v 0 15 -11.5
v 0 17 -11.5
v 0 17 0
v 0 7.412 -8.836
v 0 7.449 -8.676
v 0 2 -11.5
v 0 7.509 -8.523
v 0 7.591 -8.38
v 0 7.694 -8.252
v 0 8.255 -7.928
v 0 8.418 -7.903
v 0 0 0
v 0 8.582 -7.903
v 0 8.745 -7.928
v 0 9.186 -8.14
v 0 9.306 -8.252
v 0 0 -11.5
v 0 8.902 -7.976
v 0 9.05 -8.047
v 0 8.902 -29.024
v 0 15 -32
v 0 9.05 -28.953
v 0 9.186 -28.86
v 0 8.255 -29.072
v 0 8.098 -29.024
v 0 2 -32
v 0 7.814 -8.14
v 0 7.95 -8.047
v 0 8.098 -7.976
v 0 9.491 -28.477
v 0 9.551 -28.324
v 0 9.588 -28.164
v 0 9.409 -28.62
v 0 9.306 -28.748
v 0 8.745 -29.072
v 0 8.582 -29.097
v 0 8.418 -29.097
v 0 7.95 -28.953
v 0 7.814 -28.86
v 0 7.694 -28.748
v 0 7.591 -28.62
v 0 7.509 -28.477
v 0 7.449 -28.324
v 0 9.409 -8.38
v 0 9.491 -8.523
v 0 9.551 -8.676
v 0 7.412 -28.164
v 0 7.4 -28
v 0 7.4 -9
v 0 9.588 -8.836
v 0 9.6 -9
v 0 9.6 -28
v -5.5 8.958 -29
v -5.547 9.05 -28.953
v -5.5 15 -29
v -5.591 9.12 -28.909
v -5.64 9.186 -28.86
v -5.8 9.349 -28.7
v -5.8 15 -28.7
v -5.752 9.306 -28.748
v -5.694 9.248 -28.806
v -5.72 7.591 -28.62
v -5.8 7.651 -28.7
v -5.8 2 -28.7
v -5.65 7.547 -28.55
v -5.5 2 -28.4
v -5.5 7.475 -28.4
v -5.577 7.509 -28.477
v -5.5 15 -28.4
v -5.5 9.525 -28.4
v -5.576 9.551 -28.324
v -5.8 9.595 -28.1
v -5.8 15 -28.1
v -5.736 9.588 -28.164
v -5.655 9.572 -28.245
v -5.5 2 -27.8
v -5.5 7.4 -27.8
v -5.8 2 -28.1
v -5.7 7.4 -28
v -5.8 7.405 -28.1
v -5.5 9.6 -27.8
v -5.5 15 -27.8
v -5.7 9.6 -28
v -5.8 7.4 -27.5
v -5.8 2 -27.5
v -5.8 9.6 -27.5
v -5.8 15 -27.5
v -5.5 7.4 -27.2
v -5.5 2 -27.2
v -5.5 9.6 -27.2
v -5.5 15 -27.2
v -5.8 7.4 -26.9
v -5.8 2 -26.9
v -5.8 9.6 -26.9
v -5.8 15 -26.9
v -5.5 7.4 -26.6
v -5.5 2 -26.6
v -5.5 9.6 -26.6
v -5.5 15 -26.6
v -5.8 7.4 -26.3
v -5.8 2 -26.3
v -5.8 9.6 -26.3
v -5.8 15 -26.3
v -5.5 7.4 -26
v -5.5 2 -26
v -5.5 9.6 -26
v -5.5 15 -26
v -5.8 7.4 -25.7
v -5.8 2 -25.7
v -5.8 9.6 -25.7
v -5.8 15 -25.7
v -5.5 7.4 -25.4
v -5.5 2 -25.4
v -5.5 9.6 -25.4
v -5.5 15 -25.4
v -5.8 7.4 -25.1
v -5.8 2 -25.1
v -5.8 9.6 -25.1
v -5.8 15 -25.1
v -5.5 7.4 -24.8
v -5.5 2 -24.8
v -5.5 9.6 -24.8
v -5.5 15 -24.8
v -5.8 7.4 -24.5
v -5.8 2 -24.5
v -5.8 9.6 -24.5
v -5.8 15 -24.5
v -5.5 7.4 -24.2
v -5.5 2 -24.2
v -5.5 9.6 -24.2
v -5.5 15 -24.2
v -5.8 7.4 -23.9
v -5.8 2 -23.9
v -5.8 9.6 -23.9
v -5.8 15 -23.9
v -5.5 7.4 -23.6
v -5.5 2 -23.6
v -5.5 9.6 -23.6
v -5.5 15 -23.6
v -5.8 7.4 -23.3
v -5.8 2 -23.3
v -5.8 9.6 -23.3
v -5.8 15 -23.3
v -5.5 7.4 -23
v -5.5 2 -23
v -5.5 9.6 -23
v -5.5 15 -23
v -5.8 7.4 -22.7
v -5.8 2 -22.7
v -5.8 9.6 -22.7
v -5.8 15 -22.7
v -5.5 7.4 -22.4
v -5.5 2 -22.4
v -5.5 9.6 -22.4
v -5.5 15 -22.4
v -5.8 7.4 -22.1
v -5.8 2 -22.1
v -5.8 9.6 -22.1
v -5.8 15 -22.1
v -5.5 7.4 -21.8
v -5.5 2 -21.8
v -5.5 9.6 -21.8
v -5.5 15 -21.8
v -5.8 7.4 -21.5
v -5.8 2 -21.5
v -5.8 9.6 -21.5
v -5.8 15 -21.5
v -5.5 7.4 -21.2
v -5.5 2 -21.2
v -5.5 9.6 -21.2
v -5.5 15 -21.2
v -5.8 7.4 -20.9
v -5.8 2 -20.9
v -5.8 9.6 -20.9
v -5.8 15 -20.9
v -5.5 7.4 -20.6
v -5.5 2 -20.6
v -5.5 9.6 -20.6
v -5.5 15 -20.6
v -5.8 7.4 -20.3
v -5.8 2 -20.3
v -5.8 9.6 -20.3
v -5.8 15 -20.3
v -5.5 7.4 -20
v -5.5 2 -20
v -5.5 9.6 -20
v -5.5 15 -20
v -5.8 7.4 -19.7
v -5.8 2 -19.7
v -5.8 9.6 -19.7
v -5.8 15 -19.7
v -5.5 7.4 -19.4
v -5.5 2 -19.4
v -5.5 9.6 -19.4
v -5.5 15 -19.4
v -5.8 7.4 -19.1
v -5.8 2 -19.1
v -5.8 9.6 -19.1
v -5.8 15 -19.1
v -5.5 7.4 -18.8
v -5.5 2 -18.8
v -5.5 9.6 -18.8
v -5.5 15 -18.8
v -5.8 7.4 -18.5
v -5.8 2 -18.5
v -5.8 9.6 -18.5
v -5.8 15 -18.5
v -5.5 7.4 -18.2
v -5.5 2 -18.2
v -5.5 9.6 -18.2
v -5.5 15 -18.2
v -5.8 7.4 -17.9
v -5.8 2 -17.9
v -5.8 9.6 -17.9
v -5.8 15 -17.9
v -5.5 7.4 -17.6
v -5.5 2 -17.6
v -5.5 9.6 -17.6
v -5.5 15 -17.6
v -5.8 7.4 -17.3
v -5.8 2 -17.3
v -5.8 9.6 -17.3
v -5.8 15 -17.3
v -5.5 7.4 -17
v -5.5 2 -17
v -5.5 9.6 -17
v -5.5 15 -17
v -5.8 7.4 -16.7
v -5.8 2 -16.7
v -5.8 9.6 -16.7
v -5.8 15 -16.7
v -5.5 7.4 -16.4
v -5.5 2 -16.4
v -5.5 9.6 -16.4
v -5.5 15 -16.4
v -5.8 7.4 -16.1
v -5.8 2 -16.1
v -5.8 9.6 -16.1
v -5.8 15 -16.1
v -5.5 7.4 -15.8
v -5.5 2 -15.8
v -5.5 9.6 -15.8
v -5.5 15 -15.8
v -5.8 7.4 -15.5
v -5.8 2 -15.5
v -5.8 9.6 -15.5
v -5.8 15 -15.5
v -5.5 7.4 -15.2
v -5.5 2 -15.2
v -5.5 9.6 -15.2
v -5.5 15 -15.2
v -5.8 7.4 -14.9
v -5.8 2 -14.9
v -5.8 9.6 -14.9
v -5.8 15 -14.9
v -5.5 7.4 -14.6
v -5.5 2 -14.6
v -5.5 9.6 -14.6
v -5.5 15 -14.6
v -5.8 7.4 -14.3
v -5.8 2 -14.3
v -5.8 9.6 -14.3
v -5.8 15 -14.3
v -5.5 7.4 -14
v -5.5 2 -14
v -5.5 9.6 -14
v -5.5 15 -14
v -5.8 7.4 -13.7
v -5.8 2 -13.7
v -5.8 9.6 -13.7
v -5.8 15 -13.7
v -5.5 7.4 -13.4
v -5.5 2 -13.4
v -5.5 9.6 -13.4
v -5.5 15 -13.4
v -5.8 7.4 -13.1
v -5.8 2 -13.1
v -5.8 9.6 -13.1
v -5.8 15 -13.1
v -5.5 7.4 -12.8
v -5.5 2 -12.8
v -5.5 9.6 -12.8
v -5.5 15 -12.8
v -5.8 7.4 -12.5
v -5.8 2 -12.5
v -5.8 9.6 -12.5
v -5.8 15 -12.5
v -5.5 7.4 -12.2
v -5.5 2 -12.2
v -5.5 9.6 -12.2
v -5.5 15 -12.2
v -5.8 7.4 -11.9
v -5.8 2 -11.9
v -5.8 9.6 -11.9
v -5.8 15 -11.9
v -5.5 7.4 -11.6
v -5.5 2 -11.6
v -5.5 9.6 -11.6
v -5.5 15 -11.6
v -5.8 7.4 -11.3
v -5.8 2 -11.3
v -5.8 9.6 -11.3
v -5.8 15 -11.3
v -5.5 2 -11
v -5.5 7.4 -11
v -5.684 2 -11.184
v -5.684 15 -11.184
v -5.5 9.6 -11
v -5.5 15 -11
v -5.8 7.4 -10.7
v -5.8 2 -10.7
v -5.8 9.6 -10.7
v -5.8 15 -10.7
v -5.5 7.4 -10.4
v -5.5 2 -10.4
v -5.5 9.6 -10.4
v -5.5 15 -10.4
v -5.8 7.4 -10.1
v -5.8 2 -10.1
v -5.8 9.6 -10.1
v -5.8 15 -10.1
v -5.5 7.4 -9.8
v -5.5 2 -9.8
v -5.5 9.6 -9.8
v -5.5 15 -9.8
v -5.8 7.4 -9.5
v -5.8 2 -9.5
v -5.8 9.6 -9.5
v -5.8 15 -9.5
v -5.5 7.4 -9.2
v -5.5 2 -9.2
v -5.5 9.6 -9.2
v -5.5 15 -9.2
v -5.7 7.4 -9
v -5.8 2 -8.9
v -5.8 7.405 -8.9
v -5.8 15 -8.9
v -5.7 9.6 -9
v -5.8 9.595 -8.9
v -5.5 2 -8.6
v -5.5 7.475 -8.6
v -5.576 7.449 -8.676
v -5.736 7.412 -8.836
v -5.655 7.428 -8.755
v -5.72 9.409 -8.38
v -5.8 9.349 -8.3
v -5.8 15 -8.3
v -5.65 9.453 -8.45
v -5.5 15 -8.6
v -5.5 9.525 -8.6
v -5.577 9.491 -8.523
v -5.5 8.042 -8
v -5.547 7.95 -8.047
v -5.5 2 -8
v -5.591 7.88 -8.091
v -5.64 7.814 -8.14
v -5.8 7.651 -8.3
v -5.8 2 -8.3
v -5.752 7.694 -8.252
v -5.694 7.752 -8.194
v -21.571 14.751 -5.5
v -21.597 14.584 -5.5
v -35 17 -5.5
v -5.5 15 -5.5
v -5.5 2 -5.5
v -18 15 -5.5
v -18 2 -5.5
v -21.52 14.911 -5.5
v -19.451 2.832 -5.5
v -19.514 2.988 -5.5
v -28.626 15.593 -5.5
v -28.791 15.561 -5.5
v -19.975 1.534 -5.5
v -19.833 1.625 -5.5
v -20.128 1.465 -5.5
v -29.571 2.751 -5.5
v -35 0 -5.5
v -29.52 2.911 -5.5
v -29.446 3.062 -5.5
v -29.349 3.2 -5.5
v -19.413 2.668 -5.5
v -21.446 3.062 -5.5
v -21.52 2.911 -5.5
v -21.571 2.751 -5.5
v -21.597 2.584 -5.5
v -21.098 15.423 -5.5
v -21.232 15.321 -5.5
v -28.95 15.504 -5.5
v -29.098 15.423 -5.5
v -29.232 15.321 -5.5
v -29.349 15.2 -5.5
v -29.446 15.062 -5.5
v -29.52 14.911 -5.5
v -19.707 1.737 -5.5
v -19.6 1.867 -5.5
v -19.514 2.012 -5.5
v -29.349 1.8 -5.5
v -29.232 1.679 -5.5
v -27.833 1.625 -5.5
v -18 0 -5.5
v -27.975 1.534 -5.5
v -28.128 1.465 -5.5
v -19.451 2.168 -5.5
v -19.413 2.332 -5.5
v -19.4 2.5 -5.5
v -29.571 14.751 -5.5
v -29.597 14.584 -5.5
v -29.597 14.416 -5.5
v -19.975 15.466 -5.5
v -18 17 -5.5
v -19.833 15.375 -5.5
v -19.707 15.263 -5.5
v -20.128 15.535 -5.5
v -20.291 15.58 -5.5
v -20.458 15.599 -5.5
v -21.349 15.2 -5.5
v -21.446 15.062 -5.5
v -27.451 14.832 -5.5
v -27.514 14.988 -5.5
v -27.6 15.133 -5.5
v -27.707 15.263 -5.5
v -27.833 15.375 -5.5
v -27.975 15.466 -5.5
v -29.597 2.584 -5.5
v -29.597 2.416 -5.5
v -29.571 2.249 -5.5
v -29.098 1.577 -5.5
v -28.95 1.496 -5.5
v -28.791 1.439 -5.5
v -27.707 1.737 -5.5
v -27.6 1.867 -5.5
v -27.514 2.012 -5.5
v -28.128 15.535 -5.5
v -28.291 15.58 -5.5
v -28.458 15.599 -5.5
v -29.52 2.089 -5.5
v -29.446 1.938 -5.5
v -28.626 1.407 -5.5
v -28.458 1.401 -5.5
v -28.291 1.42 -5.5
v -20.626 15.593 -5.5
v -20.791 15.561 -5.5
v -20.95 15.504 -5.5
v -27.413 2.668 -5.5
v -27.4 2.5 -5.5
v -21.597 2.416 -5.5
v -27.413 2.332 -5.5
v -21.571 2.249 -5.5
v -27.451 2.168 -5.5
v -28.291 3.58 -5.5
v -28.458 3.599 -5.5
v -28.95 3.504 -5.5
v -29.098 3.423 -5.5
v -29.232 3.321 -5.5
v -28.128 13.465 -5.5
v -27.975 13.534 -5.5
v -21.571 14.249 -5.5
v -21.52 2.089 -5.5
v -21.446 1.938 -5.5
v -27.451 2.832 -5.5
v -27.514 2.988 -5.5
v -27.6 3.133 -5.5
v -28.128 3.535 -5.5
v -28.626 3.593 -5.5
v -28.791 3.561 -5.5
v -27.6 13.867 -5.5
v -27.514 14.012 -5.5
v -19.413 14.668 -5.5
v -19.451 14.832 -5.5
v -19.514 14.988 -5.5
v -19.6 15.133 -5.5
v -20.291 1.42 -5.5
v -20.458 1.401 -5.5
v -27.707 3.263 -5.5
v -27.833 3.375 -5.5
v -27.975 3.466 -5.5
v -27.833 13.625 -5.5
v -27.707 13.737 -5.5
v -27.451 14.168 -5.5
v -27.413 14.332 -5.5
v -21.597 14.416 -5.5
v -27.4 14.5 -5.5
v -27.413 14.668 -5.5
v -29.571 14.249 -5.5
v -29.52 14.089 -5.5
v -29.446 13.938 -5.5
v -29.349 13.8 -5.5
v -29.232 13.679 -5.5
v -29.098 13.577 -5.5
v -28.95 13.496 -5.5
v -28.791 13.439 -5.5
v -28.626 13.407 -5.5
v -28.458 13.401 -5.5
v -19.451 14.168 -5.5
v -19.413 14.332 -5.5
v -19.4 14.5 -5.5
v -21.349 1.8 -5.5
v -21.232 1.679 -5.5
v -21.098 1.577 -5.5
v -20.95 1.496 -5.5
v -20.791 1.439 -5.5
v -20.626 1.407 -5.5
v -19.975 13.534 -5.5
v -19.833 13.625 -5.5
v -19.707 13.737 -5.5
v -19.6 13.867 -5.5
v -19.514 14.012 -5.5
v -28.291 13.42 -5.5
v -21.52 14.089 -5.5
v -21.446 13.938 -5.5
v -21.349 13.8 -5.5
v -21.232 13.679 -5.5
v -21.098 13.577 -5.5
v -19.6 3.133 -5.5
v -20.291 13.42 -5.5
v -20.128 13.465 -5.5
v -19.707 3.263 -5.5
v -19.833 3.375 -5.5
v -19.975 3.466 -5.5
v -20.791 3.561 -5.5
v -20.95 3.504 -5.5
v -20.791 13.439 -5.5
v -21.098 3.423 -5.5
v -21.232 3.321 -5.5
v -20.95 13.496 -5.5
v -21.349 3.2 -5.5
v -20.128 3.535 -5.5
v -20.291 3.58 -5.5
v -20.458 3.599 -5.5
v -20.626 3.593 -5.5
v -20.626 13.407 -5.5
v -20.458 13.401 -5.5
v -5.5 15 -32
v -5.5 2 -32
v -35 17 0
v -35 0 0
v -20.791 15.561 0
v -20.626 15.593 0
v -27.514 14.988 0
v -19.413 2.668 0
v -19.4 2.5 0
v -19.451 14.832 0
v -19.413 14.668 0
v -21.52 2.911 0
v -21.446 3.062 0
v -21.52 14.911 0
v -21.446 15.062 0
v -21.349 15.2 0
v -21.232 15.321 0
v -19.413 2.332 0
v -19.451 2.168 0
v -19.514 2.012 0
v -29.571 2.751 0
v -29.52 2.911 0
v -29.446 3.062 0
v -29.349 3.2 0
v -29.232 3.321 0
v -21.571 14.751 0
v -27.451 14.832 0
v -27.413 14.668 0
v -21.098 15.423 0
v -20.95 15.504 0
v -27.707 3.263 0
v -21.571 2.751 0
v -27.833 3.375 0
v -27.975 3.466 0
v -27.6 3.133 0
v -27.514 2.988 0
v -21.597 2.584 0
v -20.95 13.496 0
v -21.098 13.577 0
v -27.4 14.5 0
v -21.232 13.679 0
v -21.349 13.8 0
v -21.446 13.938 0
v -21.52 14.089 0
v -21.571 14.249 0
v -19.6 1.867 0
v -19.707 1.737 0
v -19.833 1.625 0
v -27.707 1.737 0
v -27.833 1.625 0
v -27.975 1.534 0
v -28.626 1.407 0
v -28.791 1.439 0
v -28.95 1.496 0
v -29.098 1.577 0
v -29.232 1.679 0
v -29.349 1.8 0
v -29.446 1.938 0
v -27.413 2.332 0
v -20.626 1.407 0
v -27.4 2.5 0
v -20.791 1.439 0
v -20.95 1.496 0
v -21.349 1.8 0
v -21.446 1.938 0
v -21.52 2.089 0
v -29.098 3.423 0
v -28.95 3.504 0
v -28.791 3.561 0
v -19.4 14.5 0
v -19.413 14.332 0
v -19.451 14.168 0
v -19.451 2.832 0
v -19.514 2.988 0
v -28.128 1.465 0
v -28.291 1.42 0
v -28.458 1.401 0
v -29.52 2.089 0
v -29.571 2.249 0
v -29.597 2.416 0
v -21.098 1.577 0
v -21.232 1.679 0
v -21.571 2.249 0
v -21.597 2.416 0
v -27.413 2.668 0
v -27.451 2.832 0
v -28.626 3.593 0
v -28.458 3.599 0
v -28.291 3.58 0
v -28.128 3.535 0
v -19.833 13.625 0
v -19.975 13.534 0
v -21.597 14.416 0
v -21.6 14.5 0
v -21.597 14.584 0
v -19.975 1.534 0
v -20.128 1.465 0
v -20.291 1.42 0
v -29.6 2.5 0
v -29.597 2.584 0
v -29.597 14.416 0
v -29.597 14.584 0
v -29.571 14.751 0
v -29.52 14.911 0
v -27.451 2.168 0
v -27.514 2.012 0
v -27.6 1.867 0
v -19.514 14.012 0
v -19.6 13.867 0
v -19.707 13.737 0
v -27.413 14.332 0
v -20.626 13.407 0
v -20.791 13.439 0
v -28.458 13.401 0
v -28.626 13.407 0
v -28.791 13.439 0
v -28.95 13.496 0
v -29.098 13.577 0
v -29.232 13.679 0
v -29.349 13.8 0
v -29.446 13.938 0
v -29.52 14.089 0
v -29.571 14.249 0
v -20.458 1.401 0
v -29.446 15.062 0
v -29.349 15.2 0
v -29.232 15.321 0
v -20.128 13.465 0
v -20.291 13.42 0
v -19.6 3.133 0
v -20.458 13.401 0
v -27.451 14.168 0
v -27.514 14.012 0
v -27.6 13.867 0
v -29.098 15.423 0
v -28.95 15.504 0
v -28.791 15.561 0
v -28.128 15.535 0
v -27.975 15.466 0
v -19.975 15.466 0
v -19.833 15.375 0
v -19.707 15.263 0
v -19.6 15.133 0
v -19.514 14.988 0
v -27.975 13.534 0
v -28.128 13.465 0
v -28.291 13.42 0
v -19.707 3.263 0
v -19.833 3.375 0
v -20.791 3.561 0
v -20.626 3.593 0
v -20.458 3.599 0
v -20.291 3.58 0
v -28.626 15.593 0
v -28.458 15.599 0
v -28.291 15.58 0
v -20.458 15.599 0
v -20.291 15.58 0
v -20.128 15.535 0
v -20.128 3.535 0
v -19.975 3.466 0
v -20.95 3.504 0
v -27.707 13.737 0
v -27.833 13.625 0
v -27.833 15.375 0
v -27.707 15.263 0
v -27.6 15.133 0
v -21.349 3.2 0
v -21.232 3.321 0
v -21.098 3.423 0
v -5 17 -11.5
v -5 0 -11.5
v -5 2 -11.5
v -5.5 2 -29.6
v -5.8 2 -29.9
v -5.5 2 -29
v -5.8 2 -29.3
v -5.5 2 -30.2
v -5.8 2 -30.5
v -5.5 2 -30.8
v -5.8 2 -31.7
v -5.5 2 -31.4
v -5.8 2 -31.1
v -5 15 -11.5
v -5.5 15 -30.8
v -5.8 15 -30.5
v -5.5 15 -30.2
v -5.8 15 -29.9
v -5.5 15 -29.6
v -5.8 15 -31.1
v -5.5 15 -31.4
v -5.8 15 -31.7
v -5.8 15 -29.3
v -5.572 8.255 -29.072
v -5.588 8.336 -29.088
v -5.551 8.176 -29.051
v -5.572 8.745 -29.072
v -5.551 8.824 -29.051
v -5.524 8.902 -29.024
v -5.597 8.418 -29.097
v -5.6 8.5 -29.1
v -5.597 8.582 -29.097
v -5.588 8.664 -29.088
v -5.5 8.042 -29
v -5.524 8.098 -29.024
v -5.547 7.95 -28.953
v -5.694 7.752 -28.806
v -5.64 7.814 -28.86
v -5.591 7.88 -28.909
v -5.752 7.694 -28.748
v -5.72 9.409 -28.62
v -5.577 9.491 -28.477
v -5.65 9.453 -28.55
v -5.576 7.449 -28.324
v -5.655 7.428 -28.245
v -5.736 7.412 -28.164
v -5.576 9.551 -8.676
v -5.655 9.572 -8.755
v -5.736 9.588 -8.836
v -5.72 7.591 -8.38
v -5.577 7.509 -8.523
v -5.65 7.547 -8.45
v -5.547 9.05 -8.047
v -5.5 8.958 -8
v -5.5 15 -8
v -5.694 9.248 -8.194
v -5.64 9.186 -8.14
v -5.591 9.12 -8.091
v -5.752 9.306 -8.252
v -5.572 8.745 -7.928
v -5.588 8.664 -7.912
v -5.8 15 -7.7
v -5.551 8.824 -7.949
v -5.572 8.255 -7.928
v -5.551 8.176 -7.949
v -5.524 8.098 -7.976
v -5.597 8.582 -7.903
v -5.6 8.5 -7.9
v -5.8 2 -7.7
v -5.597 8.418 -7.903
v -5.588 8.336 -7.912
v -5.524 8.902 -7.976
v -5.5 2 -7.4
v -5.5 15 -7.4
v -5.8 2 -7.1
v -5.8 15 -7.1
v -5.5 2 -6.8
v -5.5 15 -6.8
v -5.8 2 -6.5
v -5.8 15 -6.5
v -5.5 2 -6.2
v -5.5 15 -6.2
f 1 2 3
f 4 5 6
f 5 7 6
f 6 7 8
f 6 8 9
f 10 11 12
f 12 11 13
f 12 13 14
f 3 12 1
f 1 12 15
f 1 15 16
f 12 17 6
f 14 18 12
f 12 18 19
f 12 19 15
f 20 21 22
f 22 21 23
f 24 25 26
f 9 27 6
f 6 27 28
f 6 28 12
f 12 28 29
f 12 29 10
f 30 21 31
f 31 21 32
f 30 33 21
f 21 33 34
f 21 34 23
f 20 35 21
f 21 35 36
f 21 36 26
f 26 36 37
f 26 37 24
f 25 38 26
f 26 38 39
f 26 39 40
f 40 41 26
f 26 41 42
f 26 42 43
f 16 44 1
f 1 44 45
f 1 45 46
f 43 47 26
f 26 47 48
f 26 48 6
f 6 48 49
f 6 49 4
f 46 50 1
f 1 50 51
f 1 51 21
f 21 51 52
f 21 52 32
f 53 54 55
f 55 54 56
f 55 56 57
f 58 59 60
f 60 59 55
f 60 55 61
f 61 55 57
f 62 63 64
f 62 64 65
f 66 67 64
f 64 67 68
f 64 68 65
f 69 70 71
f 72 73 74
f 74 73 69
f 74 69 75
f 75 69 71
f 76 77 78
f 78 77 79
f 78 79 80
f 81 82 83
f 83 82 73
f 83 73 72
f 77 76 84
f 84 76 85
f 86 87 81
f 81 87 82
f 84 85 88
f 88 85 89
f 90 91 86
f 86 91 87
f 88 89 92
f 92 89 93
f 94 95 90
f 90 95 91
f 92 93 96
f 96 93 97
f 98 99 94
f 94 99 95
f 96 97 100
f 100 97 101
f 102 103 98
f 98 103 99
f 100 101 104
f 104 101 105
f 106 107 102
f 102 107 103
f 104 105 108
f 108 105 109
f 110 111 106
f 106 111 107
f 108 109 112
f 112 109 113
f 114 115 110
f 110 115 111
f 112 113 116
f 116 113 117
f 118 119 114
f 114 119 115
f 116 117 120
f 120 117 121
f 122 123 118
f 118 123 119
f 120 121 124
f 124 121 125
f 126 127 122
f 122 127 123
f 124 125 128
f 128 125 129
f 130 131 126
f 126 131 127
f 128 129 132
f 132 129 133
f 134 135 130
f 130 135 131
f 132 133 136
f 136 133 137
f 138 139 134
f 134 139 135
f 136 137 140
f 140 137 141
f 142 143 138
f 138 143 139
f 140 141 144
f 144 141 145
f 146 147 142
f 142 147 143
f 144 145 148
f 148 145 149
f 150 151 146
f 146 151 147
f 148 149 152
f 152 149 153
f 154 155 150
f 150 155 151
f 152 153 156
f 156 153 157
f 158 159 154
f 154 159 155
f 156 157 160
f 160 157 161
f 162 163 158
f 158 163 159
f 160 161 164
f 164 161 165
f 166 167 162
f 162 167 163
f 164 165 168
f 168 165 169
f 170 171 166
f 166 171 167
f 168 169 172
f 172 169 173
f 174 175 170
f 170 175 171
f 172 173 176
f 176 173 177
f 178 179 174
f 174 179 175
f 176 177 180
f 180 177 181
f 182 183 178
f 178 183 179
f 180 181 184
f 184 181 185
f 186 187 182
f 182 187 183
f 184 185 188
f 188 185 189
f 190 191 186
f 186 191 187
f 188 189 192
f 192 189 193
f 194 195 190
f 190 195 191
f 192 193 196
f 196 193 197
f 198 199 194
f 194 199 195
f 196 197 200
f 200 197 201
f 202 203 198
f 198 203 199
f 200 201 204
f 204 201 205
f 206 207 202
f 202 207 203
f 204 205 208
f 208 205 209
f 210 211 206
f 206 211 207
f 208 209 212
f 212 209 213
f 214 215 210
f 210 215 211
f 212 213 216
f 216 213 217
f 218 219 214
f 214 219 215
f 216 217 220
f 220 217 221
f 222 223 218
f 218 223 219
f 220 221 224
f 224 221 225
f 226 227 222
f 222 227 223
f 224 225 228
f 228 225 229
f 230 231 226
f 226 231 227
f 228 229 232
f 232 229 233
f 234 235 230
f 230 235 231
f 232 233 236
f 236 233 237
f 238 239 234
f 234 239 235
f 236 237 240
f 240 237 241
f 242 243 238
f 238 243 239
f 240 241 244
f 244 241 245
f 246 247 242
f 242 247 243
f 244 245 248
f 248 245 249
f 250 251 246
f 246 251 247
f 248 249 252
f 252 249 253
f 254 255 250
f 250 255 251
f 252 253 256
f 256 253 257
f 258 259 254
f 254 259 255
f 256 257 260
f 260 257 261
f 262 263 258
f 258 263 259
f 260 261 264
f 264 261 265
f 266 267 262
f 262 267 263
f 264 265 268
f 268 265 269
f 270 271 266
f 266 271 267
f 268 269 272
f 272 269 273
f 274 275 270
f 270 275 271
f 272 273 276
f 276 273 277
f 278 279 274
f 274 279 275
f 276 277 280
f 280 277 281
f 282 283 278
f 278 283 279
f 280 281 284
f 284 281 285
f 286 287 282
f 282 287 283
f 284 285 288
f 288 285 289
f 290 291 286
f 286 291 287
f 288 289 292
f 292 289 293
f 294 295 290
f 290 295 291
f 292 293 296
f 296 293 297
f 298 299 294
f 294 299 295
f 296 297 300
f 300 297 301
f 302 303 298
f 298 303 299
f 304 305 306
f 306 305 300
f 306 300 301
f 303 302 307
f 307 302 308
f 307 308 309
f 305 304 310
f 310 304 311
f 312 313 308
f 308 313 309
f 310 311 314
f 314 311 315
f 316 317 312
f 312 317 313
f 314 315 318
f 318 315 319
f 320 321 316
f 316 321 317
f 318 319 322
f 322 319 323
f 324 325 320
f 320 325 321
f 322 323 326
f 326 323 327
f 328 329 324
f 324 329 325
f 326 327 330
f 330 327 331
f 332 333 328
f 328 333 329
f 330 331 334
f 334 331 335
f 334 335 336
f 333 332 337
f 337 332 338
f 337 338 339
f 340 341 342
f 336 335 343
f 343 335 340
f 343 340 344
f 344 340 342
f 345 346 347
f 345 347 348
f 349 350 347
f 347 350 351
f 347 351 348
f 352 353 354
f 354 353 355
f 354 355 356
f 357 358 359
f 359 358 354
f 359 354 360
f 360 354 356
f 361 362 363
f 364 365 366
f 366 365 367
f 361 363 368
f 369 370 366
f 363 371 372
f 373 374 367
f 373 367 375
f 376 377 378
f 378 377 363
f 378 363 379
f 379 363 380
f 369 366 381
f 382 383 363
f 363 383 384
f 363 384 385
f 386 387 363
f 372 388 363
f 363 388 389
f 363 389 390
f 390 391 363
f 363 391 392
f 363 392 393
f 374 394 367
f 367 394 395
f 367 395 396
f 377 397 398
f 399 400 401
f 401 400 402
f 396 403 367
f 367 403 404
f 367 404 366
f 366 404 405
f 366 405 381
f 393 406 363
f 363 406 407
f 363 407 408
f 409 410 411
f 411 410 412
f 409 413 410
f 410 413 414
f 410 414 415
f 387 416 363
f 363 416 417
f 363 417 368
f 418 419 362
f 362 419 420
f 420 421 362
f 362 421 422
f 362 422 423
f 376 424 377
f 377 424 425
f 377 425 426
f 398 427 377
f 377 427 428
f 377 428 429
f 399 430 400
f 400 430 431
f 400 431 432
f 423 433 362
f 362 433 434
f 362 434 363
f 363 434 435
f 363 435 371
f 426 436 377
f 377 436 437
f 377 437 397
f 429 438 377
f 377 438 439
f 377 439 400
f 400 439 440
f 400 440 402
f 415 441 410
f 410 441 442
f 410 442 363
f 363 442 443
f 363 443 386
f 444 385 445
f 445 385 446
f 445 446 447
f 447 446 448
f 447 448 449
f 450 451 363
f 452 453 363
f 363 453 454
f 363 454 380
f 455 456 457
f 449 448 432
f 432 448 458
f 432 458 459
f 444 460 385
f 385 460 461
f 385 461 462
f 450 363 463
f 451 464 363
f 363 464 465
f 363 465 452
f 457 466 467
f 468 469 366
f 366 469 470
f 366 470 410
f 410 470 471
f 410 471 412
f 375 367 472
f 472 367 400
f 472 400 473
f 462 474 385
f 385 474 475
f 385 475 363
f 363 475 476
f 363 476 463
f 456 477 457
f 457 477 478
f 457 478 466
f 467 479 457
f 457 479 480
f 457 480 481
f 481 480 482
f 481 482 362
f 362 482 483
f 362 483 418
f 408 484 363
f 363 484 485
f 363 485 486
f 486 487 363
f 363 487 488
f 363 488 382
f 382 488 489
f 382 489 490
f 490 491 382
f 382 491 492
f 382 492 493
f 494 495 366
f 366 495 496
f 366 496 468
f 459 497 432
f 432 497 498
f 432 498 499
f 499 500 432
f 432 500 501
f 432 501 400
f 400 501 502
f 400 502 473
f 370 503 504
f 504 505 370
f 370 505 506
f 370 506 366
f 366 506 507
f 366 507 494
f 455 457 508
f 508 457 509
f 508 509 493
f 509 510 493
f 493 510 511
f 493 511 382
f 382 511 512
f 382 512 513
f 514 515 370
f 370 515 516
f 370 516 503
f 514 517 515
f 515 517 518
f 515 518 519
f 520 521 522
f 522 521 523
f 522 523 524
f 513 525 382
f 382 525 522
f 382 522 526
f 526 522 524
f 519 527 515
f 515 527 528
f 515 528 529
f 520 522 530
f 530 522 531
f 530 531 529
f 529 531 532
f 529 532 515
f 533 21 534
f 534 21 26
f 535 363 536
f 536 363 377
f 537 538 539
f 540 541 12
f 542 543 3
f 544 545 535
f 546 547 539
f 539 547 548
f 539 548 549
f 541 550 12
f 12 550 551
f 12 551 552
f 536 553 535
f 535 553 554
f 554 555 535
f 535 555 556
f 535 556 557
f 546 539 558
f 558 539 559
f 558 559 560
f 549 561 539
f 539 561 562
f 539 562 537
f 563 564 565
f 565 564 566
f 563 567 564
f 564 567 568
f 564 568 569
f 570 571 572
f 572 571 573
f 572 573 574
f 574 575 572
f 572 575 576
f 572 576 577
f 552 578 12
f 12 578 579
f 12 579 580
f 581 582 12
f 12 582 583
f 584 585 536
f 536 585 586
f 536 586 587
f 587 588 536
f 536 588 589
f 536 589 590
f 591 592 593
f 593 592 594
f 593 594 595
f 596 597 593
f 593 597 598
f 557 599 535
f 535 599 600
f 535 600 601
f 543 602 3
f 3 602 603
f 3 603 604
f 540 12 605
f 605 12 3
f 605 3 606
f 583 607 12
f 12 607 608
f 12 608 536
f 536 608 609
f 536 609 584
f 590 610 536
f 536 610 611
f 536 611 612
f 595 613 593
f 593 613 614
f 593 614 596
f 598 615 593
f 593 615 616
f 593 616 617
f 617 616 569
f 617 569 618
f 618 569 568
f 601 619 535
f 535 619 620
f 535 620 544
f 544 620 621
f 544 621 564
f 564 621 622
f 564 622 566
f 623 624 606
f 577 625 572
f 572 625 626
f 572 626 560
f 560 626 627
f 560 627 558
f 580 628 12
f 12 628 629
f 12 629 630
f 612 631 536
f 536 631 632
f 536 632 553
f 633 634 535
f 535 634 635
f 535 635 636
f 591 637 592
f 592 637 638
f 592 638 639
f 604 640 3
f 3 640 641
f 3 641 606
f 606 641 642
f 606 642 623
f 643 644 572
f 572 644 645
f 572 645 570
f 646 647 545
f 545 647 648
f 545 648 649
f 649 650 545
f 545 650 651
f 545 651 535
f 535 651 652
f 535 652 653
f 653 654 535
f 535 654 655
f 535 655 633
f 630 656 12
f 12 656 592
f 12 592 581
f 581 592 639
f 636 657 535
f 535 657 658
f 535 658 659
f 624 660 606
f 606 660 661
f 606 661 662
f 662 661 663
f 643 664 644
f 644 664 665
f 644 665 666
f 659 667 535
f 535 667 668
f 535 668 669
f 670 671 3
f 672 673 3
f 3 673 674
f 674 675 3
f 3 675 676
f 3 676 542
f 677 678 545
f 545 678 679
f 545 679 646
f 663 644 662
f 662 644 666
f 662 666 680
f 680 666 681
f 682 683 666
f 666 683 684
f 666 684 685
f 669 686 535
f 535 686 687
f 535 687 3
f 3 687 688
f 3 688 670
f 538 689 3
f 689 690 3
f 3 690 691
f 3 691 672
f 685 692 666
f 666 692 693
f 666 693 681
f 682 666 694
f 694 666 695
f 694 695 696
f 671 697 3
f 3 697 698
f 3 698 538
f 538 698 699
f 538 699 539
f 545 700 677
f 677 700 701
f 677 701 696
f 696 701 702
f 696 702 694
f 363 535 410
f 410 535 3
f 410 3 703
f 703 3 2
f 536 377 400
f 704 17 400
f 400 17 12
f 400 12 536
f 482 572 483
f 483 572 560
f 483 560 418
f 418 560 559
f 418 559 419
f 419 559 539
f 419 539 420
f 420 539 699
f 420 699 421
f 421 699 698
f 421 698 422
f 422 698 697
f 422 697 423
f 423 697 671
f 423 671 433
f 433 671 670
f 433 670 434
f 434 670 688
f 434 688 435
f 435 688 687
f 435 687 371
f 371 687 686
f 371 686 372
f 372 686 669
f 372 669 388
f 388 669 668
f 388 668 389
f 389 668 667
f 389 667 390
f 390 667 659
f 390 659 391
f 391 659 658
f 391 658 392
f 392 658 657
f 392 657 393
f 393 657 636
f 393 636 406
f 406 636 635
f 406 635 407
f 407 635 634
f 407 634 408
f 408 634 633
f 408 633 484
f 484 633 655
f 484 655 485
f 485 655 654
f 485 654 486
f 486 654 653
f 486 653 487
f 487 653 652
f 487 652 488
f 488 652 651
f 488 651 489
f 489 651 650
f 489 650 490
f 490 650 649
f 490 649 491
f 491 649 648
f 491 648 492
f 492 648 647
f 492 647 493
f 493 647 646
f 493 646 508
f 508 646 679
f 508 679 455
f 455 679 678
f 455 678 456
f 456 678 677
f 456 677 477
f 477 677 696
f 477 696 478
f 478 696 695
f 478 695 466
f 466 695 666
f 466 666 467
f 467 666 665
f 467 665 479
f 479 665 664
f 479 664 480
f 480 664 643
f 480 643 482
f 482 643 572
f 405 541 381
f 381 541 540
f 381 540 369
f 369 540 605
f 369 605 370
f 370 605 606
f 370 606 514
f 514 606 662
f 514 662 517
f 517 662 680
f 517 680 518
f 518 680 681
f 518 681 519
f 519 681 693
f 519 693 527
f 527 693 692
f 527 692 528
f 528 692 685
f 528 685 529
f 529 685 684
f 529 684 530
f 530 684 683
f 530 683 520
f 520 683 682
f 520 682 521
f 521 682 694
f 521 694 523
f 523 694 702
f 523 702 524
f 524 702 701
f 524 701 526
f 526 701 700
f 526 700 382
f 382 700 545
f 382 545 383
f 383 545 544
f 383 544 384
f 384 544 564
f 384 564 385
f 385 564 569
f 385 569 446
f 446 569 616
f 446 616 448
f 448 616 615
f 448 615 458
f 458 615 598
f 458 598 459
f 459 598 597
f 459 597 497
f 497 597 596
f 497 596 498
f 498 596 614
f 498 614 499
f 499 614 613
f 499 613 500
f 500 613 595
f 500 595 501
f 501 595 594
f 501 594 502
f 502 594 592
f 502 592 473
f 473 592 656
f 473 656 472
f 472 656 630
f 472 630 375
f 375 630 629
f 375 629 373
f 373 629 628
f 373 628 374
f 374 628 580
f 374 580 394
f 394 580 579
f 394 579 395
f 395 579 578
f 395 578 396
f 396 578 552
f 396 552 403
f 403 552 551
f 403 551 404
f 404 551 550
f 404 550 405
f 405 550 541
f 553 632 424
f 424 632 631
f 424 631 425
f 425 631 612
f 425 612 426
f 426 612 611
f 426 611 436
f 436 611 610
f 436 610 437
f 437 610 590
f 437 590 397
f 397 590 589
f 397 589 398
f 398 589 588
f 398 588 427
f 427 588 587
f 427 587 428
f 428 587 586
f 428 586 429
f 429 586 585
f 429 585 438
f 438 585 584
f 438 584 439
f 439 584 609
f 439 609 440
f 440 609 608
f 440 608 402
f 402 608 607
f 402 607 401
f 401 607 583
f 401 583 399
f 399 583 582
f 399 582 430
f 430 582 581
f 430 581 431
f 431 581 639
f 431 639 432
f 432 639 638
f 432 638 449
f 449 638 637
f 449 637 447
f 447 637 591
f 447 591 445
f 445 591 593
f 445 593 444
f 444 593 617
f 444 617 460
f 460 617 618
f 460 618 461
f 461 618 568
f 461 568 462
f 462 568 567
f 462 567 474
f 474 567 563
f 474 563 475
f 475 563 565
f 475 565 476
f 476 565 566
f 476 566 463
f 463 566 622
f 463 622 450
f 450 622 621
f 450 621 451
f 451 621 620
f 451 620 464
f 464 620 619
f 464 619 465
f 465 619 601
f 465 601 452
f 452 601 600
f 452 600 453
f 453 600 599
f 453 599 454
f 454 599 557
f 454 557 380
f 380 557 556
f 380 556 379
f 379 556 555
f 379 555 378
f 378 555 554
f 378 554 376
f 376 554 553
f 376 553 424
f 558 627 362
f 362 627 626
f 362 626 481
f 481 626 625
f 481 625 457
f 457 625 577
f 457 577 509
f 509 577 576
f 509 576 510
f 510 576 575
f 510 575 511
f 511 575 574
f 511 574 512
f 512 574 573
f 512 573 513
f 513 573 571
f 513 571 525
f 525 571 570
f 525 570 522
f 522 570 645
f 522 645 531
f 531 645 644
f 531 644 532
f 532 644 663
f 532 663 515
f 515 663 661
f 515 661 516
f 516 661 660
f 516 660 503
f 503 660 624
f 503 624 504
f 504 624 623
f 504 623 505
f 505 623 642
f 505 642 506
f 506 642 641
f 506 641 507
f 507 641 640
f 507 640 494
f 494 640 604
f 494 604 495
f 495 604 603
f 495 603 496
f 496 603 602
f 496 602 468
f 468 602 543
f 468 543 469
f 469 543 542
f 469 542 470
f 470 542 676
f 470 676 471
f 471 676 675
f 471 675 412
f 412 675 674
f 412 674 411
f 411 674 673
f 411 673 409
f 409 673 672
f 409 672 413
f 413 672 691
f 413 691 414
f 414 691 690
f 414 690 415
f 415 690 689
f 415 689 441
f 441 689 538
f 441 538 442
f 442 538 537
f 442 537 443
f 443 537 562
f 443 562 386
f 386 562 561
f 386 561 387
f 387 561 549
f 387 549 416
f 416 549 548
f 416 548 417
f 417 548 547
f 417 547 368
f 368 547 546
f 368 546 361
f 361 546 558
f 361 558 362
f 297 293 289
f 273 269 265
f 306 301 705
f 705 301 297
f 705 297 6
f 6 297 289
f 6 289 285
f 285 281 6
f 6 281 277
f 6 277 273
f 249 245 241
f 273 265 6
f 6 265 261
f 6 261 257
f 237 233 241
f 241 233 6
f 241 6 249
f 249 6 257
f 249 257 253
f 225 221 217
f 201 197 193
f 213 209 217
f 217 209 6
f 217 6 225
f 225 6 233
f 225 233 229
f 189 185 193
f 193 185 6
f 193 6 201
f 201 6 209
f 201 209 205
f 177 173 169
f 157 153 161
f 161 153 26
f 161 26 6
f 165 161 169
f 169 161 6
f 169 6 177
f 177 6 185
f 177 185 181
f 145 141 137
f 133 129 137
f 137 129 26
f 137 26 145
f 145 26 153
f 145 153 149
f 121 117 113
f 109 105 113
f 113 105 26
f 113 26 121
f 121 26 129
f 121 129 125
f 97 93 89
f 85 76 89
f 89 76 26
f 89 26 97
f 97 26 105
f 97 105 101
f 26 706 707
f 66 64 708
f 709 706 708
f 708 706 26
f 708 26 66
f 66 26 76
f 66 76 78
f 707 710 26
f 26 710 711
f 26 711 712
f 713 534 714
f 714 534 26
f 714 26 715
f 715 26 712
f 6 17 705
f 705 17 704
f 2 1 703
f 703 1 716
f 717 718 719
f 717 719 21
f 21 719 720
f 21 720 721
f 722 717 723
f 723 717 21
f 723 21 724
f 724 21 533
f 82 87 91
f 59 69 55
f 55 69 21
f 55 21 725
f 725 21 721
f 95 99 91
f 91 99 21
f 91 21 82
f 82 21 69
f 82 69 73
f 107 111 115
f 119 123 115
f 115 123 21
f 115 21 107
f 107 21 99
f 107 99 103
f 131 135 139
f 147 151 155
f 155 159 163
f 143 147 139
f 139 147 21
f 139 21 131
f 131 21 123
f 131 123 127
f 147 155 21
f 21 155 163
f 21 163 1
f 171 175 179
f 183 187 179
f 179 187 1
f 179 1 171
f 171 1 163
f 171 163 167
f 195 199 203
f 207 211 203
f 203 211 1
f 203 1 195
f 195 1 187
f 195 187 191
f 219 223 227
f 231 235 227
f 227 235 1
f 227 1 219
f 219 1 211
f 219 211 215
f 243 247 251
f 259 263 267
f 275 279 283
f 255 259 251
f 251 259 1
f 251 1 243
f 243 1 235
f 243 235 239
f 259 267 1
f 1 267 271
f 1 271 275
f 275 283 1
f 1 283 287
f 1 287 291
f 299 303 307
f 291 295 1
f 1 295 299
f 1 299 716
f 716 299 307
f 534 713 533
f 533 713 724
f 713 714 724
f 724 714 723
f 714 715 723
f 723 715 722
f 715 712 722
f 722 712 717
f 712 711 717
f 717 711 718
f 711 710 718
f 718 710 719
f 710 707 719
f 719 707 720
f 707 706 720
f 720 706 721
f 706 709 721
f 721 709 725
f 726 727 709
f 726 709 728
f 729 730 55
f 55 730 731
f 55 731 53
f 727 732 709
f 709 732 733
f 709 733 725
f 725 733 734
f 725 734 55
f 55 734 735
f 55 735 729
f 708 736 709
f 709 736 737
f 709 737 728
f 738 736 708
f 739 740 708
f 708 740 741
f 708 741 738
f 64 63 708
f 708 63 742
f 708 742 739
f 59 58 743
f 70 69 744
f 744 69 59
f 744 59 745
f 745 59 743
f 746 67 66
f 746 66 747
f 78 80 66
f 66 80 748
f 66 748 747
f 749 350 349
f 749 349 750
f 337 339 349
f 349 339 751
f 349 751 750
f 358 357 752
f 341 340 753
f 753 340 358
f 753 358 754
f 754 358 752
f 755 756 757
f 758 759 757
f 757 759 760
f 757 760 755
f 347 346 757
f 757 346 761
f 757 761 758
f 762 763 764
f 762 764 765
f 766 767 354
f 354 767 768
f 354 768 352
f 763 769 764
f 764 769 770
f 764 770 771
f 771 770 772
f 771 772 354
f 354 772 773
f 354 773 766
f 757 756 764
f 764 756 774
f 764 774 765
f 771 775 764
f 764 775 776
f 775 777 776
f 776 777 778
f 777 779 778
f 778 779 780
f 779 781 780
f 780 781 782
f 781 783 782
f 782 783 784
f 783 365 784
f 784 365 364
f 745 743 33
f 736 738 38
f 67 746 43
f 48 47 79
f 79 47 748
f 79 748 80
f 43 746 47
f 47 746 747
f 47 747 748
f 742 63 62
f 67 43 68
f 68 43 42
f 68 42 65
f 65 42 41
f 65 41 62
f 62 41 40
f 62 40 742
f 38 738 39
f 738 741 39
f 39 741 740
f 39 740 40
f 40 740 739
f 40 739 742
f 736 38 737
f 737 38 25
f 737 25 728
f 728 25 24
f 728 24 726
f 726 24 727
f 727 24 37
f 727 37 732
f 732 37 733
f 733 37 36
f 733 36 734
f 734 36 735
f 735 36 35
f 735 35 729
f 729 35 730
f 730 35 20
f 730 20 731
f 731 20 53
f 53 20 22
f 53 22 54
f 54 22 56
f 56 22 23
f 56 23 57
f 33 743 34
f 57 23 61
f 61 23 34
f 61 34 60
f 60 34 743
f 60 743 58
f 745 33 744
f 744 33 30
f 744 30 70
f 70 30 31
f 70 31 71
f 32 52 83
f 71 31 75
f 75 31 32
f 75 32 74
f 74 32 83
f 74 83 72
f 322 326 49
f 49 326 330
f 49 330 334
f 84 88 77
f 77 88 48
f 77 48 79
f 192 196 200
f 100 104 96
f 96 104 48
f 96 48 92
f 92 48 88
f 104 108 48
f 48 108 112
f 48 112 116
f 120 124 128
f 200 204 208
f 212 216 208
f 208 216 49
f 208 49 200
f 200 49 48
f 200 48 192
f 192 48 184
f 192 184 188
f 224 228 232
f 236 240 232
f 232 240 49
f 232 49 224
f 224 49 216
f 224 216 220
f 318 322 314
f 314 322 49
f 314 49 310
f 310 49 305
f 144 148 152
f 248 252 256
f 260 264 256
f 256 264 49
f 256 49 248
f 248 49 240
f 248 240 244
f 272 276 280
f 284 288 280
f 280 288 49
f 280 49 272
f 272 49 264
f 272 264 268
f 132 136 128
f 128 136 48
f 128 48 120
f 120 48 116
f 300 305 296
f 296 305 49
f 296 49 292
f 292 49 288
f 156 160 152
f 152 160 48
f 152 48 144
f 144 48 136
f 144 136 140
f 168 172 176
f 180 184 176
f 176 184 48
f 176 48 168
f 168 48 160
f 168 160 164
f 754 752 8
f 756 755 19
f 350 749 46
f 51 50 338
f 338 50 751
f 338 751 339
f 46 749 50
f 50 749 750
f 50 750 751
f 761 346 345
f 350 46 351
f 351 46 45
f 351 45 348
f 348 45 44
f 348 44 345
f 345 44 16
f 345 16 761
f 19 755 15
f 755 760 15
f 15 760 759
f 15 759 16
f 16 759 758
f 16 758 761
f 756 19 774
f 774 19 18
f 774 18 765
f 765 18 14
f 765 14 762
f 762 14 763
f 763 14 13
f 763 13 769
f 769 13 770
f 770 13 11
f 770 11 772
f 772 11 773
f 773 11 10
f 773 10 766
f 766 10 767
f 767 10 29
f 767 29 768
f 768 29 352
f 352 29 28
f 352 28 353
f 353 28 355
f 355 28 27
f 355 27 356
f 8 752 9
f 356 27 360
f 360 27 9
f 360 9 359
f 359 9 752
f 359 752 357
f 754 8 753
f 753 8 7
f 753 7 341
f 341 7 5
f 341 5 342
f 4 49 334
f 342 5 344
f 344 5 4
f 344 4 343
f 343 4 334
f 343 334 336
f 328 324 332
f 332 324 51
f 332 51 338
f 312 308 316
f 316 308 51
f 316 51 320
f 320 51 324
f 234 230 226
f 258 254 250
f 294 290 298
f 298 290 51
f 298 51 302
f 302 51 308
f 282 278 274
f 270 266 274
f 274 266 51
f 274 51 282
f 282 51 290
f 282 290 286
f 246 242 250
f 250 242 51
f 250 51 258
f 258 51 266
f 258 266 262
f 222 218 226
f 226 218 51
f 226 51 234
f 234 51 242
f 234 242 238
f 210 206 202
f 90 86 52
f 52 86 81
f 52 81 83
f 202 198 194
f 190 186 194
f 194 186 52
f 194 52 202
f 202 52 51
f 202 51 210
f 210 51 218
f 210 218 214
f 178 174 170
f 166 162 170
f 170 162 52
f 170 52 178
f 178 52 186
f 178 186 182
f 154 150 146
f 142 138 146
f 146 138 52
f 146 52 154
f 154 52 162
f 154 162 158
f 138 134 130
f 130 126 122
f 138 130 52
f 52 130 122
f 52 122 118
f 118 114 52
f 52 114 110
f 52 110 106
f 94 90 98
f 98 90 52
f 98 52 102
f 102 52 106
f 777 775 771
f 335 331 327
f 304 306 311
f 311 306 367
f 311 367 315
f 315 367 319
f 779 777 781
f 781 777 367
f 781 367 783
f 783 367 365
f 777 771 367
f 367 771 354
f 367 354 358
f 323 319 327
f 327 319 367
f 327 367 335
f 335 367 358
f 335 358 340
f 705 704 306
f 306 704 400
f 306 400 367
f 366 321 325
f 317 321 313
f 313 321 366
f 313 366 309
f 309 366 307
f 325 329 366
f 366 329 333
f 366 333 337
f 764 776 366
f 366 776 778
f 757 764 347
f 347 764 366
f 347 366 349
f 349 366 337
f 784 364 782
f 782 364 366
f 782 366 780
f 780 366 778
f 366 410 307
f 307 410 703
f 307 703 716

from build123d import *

# Parameters (mm, degrees)
EXTRUDE_1_DEPTH          = 17
SKETCH_4_R               = 1.1
CUT_EXTRUDE_2_DEPTH      = 51.378566871
SKETCH_8_W               = 20.5
SKETCH_8_H               = 2
CUT_EXTRUDE_5_DEPTH      = 48.042533945
EXTRUDE_2_DEPTH          = 13
CUT_EXTRUDE_4_DEPTH      = 10
CUT_EXTRUDE_4_DEPTH_BACK = 48.042533945
EXTRUDE_3_DEPTH          = 2
EXTRUDE_4_DEPTH          = 2


with BuildPart() as part:
    # 草图1 → 凸台-拉伸1 (new body)
    with BuildSketch(Plane(origin=(0, 0, 0), x_dir=(1, 0, 0), z_dir=(0, 1, 0))):
        Polygon((0, 0), (-35, 0), (-35, 5.5), (-5, 5.5), (-5, 32), (0, 32), align=None)
    extrude(amount=EXTRUDE_1_DEPTH)

    # 草图4 → 切除-拉伸2 (cut, through all)
    with BuildSketch(Plane.XY):
        with Locations((-28.5, 14.5)):
            Circle(SKETCH_4_R)
        with Locations((-20.5, 14.5)):
            Circle(SKETCH_4_R)
        with Locations((-28.5, 2.5)):
            Circle(SKETCH_4_R)
        with Locations((-20.5, 2.5)):
            Circle(SKETCH_4_R)
    extrude(amount=-CUT_EXTRUDE_2_DEPTH, mode=Mode.SUBTRACT)

    # 草图8 → 切除-拉伸5 (cut, through all)
    with BuildSketch(Plane.ZY.offset(5)):
        with Locations((-21.75, 16)):
            Rectangle(SKETCH_8_W, SKETCH_8_H)
        with Locations((-21.75, 1)):
            Rectangle(SKETCH_8_W, SKETCH_8_H)
    extrude(amount=-CUT_EXTRUDE_5_DEPTH, mode=Mode.SUBTRACT)

    # 草图11 → 凸台-拉伸2 (add)
    with BuildSketch(Plane.XZ.offset(-2)):
        Polygon((-5, -5.5), (-5, -32), (-5.5, -32), (-5.8, -31.7), (-5.5, -31.4), (-5.8, -31.1), (-5.5, -30.8), (-5.8, -30.5), (-5.5, -30.2), (-5.8, -29.9), (-5.5, -29.6), (-5.8, -29.3), (-5.5, -29), (-5.8, -28.7), (-5.5, -28.4), (-5.8, -28.1), (-5.5, -27.8), (-5.8, -27.5), (-5.5, -27.2), (-5.8, -26.9), (-5.5, -26.6), (-5.8, -26.3), (-5.5, -26), (-5.8, -25.7), (-5.5, -25.4), (-5.8, -25.1), (-5.5, -24.8), (-5.8, -24.5), (-5.5, -24.2), (-5.8, -23.9), (-5.5, -23.6), (-5.8, -23.3), (-5.5, -23), (-5.8, -22.7), (-5.5, -22.4), (-5.8, -22.1), (-5.5, -21.8), (-5.8, -21.5), (-5.5, -21.2), (-5.8, -20.9), (-5.5, -20.6), (-5.8, -20.3), (-5.5, -20), (-5.8, -19.7), (-5.5, -19.4), (-5.8, -19.1), (-5.5, -18.8), (-5.8, -18.5), (-5.5, -18.2), (-5.8, -17.9), (-5.5, -17.6), (-5.8, -17.3), (-5.5, -17), (-5.8, -16.7), (-5.5, -16.4), (-5.8, -16.1), (-5.5, -15.8), (-5.8, -15.5), (-5.5, -15.2), (-5.8, -14.9), (-5.5, -14.6), (-5.8, -14.3), (-5.5, -14), (-5.8, -13.7), (-5.5, -13.4), (-5.8, -13.1), (-5.5, -12.8), (-5.8, -12.5), (-5.5, -12.2), (-5.8, -11.9), (-5.5, -11.6), (-5.8, -11.3), (-5.5, -11), (-5.8, -10.7), (-5.5, -10.4), (-5.8, -10.1), (-5.5, -9.8), (-5.8, -9.5), (-5.5, -9.2), (-5.8, -8.9), (-5.5, -8.6), (-5.8, -8.3), (-5.5, -8), (-5.8, -7.7), (-5.5, -7.4), (-5.8, -7.1), (-5.5, -6.8), (-5.8, -6.5), (-5.5, -6.2), (-5.5, -5.5), align=None)
    extrude(amount=-EXTRUDE_2_DEPTH)

    # 草图6 → 切除-拉伸4 (cut, two sides: drawn at the far end of the back side and taken through both)
    with BuildSketch(Plane.ZY.offset(5).offset(-CUT_EXTRUDE_4_DEPTH_BACK)):
        with BuildLine():
            Line((-28, 9.6), (-9, 9.6))
            ThreePointArc((-9, 9.6), (-7.9, 8.5), (-9, 7.4))
            Line((-9, 7.4), (-28, 7.4))
            ThreePointArc((-28, 7.4), (-29.1, 8.5), (-28, 9.6))
        make_face()
    extrude(amount=CUT_EXTRUDE_4_DEPTH + CUT_EXTRUDE_4_DEPTH_BACK, mode=Mode.SUBTRACT)

    # 草图12 → 凸台-拉伸3 (add)
    with BuildSketch(Plane.XZ):
        Polygon((-5, -11.5), (-5, -5.5), (-18, -5.5), align=None)
    extrude(amount=-EXTRUDE_3_DEPTH)

    # 草图13 → 凸台-拉伸4 (add)
    with BuildSketch(Plane(origin=(0, 17, 0), x_dir=(1, 0, 0), z_dir=(0, 1, 0))):
        Polygon((-5, 11.5), (-5, 5.5), (-18, 5.5), align=None)
    extrude(amount=-EXTRUDE_4_DEPTH)


solid = part.part
